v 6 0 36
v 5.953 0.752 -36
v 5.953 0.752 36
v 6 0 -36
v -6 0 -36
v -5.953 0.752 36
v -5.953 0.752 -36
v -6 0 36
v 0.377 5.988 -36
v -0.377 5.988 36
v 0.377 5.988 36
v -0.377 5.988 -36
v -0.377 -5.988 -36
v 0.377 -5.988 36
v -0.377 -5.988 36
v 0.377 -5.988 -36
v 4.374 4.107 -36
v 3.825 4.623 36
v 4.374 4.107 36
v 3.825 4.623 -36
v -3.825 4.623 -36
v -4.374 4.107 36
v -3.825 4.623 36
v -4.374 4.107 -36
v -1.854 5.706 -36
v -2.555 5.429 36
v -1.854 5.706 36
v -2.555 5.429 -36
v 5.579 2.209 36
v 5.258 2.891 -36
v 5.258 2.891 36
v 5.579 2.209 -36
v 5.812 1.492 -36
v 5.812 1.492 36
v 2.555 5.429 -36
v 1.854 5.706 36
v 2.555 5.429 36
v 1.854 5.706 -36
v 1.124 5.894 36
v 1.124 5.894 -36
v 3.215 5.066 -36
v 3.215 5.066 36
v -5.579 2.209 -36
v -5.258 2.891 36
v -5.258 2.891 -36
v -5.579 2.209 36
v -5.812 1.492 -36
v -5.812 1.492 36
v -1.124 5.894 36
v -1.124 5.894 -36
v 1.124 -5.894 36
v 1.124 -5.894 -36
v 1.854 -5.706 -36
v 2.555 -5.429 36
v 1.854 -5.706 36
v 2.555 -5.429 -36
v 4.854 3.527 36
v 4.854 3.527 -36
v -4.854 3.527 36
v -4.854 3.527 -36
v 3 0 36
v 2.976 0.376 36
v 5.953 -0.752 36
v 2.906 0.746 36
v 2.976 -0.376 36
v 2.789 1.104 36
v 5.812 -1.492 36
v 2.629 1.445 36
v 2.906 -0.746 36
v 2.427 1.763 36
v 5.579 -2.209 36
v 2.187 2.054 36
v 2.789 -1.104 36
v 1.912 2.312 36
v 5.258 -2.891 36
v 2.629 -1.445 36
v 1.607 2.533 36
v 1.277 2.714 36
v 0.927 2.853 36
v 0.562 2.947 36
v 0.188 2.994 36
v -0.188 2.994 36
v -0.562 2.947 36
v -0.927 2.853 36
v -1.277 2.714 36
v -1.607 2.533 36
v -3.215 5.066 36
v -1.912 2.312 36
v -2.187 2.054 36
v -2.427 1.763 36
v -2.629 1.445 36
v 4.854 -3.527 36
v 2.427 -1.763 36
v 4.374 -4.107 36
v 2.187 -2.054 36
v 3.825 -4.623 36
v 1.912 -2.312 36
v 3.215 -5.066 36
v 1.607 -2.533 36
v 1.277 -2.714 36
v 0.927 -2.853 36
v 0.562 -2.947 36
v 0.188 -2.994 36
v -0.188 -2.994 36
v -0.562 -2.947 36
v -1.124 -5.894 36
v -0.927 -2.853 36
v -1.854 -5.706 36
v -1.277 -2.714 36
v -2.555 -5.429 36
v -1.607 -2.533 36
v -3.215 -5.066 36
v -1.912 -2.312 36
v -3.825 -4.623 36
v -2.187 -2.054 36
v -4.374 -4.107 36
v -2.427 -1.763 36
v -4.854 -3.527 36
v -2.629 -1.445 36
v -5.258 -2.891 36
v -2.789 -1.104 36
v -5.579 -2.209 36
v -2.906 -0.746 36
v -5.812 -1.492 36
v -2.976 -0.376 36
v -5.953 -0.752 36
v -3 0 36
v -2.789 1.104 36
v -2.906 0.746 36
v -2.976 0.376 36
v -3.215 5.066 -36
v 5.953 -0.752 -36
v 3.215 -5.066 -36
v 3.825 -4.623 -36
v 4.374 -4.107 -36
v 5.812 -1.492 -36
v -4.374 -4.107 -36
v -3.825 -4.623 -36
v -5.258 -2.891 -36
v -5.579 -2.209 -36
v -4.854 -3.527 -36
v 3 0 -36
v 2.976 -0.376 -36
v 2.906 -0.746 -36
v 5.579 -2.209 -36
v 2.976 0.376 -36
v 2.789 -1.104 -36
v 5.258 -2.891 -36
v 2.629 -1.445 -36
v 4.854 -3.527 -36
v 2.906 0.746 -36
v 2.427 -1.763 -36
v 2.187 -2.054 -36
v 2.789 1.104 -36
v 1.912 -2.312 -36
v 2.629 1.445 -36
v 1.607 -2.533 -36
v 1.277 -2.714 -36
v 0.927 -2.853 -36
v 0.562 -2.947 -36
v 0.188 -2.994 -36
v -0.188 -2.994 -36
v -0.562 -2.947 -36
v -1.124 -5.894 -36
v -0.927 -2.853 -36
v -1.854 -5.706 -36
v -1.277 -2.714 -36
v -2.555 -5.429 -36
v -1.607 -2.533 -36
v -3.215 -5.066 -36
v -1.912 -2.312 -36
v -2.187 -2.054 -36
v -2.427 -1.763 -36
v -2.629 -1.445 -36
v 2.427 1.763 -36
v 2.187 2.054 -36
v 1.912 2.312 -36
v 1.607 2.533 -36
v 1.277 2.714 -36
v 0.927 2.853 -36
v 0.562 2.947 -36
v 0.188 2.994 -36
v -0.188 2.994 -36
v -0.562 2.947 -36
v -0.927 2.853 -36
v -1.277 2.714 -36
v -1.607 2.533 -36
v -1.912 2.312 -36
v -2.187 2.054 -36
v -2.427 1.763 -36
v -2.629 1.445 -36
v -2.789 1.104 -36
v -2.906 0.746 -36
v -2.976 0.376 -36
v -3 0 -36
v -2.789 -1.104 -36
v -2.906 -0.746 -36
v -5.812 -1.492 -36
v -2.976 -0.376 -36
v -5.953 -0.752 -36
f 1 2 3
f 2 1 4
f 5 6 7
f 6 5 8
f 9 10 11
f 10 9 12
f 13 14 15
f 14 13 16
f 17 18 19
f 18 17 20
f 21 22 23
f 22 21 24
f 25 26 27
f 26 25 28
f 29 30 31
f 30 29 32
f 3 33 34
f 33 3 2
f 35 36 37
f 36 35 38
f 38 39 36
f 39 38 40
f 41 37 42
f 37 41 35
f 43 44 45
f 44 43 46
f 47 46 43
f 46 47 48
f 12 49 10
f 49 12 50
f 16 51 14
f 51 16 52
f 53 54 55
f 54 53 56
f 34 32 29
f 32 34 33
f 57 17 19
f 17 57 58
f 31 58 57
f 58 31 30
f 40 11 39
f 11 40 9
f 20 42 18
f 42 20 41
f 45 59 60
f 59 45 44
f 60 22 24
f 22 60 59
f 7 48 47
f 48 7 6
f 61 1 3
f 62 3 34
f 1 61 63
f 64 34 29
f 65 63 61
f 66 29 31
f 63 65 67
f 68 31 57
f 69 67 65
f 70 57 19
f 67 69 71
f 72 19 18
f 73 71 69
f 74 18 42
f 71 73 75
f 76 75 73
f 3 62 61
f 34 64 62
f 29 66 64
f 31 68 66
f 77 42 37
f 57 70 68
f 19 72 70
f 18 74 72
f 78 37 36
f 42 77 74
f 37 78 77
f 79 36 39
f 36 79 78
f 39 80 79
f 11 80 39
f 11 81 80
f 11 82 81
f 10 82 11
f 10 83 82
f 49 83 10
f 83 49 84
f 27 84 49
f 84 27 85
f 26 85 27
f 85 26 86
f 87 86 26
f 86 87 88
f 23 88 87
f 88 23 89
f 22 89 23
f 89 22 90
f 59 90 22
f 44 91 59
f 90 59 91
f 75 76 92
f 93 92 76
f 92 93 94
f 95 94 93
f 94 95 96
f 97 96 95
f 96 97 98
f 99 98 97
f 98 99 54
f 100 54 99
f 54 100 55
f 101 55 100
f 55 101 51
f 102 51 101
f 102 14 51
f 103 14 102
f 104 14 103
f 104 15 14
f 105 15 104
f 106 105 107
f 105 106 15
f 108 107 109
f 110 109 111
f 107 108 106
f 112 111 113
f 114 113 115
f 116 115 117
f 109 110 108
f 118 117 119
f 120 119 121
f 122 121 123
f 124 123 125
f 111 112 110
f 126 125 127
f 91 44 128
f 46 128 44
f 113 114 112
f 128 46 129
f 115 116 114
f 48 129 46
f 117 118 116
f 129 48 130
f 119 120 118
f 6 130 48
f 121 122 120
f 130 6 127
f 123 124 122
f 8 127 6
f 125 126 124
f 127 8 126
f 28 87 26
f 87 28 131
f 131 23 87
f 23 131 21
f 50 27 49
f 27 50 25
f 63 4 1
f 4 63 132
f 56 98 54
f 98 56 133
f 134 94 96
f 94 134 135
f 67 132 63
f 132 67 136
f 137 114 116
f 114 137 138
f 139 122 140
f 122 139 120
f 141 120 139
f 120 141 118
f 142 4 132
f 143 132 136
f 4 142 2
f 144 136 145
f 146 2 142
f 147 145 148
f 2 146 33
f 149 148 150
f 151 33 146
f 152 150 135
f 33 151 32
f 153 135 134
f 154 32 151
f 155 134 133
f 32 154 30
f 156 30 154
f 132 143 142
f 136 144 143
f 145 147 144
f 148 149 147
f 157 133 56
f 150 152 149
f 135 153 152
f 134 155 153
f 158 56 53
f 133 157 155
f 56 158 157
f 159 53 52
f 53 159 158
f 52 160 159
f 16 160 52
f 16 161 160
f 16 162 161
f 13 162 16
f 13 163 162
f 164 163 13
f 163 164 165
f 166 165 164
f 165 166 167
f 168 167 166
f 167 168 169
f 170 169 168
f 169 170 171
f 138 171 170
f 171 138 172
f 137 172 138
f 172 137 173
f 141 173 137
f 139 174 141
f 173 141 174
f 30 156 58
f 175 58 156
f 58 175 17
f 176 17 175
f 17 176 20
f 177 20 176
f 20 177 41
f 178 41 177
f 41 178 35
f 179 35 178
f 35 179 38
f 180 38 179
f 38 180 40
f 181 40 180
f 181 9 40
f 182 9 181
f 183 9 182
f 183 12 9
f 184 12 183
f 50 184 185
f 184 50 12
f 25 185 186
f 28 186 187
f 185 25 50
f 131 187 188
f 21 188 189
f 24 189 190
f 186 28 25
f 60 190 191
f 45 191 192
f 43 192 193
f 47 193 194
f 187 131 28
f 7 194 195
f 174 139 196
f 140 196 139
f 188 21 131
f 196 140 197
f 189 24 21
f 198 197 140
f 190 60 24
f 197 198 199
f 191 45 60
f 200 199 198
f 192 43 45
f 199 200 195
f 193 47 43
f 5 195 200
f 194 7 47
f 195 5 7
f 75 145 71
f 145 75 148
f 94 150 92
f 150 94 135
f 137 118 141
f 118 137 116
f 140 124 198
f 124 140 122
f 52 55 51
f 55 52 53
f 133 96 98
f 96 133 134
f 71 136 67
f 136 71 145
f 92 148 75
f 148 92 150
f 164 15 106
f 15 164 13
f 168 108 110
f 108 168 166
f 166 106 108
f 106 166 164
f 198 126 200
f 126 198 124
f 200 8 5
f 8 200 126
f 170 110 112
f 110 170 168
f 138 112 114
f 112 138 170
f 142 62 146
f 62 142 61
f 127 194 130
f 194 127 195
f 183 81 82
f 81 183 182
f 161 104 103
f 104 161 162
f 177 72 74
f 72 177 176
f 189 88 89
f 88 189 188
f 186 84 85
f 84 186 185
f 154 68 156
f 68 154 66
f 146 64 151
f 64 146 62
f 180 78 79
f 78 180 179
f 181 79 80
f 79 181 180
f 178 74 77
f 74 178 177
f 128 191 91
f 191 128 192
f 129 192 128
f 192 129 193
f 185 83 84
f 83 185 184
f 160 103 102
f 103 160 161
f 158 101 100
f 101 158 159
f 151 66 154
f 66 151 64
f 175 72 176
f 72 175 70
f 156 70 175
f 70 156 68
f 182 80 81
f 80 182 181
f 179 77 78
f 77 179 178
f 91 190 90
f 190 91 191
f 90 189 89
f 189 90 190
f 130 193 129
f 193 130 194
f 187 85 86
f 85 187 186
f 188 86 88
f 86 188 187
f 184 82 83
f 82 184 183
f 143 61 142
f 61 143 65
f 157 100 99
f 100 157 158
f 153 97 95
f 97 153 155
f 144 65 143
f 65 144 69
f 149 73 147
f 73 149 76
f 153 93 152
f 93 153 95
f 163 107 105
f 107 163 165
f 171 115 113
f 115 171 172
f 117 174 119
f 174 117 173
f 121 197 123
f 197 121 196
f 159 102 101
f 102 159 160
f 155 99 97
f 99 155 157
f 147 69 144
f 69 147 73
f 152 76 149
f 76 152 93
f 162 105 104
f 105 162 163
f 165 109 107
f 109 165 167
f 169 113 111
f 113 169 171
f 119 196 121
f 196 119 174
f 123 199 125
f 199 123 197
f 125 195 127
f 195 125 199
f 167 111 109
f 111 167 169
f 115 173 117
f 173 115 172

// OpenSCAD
$fn = 50;


difference() {
	union() {
		translate(v = [0, 0, -36.0000000000]) {
			cylinder(h = 72, r = 6.0000000000);
		}
	}
	union() {
		translate(v = [0, 0, -100.0000000000]) {
			cylinder(h = 200, r = 3);
		}
	}
}
